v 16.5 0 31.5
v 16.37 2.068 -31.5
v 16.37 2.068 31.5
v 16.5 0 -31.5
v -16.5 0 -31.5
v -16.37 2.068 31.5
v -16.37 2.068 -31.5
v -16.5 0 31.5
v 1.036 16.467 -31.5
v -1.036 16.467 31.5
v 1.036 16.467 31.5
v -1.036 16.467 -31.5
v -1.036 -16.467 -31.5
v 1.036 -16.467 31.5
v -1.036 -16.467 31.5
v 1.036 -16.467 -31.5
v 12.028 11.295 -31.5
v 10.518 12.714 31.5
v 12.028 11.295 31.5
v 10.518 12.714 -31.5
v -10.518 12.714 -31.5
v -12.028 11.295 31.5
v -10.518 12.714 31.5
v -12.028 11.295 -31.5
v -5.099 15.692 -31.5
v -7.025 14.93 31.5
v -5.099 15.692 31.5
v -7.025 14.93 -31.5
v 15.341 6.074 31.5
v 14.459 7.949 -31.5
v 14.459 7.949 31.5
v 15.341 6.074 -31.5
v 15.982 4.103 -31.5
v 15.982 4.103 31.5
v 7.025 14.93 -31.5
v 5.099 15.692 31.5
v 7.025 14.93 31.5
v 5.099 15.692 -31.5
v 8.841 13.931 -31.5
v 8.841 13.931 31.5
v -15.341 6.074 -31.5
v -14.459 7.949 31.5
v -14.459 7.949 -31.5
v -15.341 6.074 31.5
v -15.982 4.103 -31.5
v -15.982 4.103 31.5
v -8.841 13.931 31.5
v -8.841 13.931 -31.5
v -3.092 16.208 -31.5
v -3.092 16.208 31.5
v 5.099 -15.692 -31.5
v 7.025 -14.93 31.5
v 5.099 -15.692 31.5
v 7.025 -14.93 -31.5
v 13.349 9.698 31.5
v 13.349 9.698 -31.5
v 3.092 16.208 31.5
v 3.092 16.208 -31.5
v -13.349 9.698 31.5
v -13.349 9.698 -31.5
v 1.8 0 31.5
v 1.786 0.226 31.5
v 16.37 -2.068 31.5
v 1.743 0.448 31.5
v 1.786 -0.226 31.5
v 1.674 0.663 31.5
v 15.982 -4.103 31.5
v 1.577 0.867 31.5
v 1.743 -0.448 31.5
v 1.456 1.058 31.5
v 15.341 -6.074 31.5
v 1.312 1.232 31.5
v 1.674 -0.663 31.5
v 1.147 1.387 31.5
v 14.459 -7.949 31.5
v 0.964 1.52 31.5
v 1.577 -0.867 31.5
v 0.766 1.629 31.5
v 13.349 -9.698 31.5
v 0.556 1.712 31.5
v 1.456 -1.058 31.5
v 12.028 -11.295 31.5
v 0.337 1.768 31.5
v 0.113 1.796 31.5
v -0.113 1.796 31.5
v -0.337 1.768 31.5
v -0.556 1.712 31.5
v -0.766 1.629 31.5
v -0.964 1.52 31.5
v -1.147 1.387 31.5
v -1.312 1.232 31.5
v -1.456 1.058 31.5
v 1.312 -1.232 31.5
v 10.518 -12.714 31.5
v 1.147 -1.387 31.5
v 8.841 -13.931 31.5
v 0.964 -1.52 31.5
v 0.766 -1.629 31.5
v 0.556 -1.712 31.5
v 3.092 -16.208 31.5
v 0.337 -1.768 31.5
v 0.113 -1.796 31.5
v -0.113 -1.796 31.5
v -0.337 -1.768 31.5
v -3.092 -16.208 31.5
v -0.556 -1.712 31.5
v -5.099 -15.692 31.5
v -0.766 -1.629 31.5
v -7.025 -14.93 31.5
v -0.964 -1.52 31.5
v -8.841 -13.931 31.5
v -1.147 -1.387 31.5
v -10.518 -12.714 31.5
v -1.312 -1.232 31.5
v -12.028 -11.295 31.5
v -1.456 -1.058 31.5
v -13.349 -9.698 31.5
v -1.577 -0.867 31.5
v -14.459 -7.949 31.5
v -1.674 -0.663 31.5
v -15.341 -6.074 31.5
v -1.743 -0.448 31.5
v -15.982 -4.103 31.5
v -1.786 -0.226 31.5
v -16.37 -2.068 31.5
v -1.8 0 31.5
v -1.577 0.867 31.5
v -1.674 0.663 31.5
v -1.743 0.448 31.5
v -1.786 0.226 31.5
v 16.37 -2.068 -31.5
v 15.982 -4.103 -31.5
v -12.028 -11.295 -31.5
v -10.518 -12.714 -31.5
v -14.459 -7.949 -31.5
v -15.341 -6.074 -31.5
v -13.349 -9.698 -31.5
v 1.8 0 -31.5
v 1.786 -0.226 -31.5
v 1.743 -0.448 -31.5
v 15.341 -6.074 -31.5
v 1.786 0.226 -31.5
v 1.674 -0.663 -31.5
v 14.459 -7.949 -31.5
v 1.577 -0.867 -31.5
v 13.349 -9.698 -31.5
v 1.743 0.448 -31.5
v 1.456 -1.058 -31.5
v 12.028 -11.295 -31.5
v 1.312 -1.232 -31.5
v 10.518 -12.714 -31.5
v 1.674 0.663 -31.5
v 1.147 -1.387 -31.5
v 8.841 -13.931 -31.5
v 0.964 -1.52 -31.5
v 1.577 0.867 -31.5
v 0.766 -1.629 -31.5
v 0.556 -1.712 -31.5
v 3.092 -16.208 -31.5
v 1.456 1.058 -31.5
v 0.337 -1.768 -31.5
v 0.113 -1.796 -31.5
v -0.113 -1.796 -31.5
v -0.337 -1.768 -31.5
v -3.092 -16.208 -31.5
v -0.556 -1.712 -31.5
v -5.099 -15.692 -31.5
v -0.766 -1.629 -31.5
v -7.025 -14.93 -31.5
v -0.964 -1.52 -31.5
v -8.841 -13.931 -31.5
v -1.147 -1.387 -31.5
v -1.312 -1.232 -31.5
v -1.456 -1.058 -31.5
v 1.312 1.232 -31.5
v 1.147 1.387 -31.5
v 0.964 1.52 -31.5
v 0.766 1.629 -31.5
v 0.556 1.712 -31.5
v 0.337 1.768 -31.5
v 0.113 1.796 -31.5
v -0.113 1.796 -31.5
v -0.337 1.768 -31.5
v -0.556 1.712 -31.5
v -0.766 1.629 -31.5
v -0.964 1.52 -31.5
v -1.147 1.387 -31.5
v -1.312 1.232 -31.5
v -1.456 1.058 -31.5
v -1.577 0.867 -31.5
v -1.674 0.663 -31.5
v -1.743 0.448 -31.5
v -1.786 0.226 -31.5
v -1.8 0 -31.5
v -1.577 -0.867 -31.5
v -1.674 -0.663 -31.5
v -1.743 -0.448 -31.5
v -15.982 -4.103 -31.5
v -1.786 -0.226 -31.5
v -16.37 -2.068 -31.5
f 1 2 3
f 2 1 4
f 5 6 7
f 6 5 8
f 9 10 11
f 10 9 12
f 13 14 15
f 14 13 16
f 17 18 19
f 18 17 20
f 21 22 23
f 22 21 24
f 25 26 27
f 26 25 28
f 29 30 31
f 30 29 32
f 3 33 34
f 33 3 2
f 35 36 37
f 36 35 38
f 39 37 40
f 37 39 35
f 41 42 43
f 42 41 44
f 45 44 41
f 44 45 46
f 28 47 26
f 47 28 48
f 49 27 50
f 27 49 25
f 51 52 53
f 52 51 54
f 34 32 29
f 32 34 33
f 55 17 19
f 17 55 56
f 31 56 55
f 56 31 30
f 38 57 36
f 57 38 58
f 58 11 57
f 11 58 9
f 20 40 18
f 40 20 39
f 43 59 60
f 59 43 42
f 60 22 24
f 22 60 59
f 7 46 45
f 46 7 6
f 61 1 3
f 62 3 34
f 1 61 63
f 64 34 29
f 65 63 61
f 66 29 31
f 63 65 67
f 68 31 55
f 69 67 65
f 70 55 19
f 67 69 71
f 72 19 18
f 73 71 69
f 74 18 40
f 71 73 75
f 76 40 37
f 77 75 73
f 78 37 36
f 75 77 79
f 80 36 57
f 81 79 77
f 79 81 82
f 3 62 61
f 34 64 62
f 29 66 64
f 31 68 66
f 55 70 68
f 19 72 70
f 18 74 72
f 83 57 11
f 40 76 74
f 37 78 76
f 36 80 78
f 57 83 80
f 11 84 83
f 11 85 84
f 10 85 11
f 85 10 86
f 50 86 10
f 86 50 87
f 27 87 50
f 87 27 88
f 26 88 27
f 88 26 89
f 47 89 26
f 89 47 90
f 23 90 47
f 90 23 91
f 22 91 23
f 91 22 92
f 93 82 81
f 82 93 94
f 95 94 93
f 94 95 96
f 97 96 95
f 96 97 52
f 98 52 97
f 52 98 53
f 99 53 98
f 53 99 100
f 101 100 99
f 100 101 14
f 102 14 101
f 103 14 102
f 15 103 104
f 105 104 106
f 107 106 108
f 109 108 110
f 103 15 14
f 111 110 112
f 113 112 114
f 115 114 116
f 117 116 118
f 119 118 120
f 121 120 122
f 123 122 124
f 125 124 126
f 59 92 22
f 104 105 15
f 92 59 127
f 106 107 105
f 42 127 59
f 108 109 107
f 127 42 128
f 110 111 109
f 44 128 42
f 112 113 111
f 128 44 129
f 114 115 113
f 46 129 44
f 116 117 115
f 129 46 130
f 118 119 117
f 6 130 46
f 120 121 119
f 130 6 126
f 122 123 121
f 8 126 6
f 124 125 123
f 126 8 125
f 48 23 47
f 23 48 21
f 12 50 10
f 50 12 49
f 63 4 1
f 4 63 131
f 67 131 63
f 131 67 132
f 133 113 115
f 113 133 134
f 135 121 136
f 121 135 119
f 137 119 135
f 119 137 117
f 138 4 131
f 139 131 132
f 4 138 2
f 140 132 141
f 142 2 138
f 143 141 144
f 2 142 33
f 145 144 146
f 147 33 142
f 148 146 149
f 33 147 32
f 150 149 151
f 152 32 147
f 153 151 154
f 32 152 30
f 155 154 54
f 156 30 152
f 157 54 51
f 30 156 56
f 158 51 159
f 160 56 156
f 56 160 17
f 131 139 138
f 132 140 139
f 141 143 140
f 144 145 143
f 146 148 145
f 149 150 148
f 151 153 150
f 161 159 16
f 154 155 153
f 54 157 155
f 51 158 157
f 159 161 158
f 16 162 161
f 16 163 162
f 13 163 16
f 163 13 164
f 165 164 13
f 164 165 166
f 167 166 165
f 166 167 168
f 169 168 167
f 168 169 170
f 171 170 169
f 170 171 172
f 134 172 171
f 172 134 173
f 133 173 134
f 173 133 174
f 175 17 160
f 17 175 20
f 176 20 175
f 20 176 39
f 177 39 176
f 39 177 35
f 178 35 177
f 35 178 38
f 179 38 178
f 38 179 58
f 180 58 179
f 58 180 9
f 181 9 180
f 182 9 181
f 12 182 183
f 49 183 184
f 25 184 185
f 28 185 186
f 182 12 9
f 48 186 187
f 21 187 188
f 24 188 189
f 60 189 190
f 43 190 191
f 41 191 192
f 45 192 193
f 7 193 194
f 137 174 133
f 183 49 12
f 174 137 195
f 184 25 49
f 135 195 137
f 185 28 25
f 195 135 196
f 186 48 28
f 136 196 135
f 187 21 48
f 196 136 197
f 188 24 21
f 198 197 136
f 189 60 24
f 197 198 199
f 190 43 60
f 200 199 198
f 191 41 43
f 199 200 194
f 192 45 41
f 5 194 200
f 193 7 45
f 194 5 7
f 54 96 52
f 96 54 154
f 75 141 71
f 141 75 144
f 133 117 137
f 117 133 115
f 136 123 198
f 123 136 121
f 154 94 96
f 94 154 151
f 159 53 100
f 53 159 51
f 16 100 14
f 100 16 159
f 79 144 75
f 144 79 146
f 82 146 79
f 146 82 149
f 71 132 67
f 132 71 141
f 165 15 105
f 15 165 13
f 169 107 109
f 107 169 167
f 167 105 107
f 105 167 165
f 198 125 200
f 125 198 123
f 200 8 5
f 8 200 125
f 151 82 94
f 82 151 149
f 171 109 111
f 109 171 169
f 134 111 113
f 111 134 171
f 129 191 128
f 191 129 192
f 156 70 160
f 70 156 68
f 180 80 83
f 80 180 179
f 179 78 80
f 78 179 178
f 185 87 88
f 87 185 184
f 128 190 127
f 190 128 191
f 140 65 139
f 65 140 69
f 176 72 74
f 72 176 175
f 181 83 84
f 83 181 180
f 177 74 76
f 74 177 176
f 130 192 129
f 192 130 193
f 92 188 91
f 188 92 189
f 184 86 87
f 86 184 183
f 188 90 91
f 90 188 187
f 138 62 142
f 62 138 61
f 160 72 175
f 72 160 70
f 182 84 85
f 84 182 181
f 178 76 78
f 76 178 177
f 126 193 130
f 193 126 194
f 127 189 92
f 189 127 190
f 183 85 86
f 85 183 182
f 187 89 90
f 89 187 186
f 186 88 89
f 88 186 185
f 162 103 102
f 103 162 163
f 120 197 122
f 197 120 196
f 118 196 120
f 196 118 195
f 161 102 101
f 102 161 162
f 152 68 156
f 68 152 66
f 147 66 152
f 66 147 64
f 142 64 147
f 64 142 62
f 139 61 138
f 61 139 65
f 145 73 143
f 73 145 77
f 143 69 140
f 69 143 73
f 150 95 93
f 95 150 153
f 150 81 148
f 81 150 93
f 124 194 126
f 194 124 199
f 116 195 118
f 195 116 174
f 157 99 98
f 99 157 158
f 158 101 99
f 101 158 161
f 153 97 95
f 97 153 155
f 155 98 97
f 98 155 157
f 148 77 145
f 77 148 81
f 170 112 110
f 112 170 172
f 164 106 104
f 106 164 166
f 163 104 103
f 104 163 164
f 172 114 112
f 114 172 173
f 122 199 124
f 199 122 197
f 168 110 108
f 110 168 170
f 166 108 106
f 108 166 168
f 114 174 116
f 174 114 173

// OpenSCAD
$fn = 50;


difference() {
	union() {
		translate(v = [0, 0, -31.5000000000]) {
			cylinder(h = 63, r = 16.5000000000);
		}
	}
	union() {
		translate(v = [0, 0, -100.0000000000]) {
			cylinder(h = 200, r = 1.8000000000);
		}
	}
}
